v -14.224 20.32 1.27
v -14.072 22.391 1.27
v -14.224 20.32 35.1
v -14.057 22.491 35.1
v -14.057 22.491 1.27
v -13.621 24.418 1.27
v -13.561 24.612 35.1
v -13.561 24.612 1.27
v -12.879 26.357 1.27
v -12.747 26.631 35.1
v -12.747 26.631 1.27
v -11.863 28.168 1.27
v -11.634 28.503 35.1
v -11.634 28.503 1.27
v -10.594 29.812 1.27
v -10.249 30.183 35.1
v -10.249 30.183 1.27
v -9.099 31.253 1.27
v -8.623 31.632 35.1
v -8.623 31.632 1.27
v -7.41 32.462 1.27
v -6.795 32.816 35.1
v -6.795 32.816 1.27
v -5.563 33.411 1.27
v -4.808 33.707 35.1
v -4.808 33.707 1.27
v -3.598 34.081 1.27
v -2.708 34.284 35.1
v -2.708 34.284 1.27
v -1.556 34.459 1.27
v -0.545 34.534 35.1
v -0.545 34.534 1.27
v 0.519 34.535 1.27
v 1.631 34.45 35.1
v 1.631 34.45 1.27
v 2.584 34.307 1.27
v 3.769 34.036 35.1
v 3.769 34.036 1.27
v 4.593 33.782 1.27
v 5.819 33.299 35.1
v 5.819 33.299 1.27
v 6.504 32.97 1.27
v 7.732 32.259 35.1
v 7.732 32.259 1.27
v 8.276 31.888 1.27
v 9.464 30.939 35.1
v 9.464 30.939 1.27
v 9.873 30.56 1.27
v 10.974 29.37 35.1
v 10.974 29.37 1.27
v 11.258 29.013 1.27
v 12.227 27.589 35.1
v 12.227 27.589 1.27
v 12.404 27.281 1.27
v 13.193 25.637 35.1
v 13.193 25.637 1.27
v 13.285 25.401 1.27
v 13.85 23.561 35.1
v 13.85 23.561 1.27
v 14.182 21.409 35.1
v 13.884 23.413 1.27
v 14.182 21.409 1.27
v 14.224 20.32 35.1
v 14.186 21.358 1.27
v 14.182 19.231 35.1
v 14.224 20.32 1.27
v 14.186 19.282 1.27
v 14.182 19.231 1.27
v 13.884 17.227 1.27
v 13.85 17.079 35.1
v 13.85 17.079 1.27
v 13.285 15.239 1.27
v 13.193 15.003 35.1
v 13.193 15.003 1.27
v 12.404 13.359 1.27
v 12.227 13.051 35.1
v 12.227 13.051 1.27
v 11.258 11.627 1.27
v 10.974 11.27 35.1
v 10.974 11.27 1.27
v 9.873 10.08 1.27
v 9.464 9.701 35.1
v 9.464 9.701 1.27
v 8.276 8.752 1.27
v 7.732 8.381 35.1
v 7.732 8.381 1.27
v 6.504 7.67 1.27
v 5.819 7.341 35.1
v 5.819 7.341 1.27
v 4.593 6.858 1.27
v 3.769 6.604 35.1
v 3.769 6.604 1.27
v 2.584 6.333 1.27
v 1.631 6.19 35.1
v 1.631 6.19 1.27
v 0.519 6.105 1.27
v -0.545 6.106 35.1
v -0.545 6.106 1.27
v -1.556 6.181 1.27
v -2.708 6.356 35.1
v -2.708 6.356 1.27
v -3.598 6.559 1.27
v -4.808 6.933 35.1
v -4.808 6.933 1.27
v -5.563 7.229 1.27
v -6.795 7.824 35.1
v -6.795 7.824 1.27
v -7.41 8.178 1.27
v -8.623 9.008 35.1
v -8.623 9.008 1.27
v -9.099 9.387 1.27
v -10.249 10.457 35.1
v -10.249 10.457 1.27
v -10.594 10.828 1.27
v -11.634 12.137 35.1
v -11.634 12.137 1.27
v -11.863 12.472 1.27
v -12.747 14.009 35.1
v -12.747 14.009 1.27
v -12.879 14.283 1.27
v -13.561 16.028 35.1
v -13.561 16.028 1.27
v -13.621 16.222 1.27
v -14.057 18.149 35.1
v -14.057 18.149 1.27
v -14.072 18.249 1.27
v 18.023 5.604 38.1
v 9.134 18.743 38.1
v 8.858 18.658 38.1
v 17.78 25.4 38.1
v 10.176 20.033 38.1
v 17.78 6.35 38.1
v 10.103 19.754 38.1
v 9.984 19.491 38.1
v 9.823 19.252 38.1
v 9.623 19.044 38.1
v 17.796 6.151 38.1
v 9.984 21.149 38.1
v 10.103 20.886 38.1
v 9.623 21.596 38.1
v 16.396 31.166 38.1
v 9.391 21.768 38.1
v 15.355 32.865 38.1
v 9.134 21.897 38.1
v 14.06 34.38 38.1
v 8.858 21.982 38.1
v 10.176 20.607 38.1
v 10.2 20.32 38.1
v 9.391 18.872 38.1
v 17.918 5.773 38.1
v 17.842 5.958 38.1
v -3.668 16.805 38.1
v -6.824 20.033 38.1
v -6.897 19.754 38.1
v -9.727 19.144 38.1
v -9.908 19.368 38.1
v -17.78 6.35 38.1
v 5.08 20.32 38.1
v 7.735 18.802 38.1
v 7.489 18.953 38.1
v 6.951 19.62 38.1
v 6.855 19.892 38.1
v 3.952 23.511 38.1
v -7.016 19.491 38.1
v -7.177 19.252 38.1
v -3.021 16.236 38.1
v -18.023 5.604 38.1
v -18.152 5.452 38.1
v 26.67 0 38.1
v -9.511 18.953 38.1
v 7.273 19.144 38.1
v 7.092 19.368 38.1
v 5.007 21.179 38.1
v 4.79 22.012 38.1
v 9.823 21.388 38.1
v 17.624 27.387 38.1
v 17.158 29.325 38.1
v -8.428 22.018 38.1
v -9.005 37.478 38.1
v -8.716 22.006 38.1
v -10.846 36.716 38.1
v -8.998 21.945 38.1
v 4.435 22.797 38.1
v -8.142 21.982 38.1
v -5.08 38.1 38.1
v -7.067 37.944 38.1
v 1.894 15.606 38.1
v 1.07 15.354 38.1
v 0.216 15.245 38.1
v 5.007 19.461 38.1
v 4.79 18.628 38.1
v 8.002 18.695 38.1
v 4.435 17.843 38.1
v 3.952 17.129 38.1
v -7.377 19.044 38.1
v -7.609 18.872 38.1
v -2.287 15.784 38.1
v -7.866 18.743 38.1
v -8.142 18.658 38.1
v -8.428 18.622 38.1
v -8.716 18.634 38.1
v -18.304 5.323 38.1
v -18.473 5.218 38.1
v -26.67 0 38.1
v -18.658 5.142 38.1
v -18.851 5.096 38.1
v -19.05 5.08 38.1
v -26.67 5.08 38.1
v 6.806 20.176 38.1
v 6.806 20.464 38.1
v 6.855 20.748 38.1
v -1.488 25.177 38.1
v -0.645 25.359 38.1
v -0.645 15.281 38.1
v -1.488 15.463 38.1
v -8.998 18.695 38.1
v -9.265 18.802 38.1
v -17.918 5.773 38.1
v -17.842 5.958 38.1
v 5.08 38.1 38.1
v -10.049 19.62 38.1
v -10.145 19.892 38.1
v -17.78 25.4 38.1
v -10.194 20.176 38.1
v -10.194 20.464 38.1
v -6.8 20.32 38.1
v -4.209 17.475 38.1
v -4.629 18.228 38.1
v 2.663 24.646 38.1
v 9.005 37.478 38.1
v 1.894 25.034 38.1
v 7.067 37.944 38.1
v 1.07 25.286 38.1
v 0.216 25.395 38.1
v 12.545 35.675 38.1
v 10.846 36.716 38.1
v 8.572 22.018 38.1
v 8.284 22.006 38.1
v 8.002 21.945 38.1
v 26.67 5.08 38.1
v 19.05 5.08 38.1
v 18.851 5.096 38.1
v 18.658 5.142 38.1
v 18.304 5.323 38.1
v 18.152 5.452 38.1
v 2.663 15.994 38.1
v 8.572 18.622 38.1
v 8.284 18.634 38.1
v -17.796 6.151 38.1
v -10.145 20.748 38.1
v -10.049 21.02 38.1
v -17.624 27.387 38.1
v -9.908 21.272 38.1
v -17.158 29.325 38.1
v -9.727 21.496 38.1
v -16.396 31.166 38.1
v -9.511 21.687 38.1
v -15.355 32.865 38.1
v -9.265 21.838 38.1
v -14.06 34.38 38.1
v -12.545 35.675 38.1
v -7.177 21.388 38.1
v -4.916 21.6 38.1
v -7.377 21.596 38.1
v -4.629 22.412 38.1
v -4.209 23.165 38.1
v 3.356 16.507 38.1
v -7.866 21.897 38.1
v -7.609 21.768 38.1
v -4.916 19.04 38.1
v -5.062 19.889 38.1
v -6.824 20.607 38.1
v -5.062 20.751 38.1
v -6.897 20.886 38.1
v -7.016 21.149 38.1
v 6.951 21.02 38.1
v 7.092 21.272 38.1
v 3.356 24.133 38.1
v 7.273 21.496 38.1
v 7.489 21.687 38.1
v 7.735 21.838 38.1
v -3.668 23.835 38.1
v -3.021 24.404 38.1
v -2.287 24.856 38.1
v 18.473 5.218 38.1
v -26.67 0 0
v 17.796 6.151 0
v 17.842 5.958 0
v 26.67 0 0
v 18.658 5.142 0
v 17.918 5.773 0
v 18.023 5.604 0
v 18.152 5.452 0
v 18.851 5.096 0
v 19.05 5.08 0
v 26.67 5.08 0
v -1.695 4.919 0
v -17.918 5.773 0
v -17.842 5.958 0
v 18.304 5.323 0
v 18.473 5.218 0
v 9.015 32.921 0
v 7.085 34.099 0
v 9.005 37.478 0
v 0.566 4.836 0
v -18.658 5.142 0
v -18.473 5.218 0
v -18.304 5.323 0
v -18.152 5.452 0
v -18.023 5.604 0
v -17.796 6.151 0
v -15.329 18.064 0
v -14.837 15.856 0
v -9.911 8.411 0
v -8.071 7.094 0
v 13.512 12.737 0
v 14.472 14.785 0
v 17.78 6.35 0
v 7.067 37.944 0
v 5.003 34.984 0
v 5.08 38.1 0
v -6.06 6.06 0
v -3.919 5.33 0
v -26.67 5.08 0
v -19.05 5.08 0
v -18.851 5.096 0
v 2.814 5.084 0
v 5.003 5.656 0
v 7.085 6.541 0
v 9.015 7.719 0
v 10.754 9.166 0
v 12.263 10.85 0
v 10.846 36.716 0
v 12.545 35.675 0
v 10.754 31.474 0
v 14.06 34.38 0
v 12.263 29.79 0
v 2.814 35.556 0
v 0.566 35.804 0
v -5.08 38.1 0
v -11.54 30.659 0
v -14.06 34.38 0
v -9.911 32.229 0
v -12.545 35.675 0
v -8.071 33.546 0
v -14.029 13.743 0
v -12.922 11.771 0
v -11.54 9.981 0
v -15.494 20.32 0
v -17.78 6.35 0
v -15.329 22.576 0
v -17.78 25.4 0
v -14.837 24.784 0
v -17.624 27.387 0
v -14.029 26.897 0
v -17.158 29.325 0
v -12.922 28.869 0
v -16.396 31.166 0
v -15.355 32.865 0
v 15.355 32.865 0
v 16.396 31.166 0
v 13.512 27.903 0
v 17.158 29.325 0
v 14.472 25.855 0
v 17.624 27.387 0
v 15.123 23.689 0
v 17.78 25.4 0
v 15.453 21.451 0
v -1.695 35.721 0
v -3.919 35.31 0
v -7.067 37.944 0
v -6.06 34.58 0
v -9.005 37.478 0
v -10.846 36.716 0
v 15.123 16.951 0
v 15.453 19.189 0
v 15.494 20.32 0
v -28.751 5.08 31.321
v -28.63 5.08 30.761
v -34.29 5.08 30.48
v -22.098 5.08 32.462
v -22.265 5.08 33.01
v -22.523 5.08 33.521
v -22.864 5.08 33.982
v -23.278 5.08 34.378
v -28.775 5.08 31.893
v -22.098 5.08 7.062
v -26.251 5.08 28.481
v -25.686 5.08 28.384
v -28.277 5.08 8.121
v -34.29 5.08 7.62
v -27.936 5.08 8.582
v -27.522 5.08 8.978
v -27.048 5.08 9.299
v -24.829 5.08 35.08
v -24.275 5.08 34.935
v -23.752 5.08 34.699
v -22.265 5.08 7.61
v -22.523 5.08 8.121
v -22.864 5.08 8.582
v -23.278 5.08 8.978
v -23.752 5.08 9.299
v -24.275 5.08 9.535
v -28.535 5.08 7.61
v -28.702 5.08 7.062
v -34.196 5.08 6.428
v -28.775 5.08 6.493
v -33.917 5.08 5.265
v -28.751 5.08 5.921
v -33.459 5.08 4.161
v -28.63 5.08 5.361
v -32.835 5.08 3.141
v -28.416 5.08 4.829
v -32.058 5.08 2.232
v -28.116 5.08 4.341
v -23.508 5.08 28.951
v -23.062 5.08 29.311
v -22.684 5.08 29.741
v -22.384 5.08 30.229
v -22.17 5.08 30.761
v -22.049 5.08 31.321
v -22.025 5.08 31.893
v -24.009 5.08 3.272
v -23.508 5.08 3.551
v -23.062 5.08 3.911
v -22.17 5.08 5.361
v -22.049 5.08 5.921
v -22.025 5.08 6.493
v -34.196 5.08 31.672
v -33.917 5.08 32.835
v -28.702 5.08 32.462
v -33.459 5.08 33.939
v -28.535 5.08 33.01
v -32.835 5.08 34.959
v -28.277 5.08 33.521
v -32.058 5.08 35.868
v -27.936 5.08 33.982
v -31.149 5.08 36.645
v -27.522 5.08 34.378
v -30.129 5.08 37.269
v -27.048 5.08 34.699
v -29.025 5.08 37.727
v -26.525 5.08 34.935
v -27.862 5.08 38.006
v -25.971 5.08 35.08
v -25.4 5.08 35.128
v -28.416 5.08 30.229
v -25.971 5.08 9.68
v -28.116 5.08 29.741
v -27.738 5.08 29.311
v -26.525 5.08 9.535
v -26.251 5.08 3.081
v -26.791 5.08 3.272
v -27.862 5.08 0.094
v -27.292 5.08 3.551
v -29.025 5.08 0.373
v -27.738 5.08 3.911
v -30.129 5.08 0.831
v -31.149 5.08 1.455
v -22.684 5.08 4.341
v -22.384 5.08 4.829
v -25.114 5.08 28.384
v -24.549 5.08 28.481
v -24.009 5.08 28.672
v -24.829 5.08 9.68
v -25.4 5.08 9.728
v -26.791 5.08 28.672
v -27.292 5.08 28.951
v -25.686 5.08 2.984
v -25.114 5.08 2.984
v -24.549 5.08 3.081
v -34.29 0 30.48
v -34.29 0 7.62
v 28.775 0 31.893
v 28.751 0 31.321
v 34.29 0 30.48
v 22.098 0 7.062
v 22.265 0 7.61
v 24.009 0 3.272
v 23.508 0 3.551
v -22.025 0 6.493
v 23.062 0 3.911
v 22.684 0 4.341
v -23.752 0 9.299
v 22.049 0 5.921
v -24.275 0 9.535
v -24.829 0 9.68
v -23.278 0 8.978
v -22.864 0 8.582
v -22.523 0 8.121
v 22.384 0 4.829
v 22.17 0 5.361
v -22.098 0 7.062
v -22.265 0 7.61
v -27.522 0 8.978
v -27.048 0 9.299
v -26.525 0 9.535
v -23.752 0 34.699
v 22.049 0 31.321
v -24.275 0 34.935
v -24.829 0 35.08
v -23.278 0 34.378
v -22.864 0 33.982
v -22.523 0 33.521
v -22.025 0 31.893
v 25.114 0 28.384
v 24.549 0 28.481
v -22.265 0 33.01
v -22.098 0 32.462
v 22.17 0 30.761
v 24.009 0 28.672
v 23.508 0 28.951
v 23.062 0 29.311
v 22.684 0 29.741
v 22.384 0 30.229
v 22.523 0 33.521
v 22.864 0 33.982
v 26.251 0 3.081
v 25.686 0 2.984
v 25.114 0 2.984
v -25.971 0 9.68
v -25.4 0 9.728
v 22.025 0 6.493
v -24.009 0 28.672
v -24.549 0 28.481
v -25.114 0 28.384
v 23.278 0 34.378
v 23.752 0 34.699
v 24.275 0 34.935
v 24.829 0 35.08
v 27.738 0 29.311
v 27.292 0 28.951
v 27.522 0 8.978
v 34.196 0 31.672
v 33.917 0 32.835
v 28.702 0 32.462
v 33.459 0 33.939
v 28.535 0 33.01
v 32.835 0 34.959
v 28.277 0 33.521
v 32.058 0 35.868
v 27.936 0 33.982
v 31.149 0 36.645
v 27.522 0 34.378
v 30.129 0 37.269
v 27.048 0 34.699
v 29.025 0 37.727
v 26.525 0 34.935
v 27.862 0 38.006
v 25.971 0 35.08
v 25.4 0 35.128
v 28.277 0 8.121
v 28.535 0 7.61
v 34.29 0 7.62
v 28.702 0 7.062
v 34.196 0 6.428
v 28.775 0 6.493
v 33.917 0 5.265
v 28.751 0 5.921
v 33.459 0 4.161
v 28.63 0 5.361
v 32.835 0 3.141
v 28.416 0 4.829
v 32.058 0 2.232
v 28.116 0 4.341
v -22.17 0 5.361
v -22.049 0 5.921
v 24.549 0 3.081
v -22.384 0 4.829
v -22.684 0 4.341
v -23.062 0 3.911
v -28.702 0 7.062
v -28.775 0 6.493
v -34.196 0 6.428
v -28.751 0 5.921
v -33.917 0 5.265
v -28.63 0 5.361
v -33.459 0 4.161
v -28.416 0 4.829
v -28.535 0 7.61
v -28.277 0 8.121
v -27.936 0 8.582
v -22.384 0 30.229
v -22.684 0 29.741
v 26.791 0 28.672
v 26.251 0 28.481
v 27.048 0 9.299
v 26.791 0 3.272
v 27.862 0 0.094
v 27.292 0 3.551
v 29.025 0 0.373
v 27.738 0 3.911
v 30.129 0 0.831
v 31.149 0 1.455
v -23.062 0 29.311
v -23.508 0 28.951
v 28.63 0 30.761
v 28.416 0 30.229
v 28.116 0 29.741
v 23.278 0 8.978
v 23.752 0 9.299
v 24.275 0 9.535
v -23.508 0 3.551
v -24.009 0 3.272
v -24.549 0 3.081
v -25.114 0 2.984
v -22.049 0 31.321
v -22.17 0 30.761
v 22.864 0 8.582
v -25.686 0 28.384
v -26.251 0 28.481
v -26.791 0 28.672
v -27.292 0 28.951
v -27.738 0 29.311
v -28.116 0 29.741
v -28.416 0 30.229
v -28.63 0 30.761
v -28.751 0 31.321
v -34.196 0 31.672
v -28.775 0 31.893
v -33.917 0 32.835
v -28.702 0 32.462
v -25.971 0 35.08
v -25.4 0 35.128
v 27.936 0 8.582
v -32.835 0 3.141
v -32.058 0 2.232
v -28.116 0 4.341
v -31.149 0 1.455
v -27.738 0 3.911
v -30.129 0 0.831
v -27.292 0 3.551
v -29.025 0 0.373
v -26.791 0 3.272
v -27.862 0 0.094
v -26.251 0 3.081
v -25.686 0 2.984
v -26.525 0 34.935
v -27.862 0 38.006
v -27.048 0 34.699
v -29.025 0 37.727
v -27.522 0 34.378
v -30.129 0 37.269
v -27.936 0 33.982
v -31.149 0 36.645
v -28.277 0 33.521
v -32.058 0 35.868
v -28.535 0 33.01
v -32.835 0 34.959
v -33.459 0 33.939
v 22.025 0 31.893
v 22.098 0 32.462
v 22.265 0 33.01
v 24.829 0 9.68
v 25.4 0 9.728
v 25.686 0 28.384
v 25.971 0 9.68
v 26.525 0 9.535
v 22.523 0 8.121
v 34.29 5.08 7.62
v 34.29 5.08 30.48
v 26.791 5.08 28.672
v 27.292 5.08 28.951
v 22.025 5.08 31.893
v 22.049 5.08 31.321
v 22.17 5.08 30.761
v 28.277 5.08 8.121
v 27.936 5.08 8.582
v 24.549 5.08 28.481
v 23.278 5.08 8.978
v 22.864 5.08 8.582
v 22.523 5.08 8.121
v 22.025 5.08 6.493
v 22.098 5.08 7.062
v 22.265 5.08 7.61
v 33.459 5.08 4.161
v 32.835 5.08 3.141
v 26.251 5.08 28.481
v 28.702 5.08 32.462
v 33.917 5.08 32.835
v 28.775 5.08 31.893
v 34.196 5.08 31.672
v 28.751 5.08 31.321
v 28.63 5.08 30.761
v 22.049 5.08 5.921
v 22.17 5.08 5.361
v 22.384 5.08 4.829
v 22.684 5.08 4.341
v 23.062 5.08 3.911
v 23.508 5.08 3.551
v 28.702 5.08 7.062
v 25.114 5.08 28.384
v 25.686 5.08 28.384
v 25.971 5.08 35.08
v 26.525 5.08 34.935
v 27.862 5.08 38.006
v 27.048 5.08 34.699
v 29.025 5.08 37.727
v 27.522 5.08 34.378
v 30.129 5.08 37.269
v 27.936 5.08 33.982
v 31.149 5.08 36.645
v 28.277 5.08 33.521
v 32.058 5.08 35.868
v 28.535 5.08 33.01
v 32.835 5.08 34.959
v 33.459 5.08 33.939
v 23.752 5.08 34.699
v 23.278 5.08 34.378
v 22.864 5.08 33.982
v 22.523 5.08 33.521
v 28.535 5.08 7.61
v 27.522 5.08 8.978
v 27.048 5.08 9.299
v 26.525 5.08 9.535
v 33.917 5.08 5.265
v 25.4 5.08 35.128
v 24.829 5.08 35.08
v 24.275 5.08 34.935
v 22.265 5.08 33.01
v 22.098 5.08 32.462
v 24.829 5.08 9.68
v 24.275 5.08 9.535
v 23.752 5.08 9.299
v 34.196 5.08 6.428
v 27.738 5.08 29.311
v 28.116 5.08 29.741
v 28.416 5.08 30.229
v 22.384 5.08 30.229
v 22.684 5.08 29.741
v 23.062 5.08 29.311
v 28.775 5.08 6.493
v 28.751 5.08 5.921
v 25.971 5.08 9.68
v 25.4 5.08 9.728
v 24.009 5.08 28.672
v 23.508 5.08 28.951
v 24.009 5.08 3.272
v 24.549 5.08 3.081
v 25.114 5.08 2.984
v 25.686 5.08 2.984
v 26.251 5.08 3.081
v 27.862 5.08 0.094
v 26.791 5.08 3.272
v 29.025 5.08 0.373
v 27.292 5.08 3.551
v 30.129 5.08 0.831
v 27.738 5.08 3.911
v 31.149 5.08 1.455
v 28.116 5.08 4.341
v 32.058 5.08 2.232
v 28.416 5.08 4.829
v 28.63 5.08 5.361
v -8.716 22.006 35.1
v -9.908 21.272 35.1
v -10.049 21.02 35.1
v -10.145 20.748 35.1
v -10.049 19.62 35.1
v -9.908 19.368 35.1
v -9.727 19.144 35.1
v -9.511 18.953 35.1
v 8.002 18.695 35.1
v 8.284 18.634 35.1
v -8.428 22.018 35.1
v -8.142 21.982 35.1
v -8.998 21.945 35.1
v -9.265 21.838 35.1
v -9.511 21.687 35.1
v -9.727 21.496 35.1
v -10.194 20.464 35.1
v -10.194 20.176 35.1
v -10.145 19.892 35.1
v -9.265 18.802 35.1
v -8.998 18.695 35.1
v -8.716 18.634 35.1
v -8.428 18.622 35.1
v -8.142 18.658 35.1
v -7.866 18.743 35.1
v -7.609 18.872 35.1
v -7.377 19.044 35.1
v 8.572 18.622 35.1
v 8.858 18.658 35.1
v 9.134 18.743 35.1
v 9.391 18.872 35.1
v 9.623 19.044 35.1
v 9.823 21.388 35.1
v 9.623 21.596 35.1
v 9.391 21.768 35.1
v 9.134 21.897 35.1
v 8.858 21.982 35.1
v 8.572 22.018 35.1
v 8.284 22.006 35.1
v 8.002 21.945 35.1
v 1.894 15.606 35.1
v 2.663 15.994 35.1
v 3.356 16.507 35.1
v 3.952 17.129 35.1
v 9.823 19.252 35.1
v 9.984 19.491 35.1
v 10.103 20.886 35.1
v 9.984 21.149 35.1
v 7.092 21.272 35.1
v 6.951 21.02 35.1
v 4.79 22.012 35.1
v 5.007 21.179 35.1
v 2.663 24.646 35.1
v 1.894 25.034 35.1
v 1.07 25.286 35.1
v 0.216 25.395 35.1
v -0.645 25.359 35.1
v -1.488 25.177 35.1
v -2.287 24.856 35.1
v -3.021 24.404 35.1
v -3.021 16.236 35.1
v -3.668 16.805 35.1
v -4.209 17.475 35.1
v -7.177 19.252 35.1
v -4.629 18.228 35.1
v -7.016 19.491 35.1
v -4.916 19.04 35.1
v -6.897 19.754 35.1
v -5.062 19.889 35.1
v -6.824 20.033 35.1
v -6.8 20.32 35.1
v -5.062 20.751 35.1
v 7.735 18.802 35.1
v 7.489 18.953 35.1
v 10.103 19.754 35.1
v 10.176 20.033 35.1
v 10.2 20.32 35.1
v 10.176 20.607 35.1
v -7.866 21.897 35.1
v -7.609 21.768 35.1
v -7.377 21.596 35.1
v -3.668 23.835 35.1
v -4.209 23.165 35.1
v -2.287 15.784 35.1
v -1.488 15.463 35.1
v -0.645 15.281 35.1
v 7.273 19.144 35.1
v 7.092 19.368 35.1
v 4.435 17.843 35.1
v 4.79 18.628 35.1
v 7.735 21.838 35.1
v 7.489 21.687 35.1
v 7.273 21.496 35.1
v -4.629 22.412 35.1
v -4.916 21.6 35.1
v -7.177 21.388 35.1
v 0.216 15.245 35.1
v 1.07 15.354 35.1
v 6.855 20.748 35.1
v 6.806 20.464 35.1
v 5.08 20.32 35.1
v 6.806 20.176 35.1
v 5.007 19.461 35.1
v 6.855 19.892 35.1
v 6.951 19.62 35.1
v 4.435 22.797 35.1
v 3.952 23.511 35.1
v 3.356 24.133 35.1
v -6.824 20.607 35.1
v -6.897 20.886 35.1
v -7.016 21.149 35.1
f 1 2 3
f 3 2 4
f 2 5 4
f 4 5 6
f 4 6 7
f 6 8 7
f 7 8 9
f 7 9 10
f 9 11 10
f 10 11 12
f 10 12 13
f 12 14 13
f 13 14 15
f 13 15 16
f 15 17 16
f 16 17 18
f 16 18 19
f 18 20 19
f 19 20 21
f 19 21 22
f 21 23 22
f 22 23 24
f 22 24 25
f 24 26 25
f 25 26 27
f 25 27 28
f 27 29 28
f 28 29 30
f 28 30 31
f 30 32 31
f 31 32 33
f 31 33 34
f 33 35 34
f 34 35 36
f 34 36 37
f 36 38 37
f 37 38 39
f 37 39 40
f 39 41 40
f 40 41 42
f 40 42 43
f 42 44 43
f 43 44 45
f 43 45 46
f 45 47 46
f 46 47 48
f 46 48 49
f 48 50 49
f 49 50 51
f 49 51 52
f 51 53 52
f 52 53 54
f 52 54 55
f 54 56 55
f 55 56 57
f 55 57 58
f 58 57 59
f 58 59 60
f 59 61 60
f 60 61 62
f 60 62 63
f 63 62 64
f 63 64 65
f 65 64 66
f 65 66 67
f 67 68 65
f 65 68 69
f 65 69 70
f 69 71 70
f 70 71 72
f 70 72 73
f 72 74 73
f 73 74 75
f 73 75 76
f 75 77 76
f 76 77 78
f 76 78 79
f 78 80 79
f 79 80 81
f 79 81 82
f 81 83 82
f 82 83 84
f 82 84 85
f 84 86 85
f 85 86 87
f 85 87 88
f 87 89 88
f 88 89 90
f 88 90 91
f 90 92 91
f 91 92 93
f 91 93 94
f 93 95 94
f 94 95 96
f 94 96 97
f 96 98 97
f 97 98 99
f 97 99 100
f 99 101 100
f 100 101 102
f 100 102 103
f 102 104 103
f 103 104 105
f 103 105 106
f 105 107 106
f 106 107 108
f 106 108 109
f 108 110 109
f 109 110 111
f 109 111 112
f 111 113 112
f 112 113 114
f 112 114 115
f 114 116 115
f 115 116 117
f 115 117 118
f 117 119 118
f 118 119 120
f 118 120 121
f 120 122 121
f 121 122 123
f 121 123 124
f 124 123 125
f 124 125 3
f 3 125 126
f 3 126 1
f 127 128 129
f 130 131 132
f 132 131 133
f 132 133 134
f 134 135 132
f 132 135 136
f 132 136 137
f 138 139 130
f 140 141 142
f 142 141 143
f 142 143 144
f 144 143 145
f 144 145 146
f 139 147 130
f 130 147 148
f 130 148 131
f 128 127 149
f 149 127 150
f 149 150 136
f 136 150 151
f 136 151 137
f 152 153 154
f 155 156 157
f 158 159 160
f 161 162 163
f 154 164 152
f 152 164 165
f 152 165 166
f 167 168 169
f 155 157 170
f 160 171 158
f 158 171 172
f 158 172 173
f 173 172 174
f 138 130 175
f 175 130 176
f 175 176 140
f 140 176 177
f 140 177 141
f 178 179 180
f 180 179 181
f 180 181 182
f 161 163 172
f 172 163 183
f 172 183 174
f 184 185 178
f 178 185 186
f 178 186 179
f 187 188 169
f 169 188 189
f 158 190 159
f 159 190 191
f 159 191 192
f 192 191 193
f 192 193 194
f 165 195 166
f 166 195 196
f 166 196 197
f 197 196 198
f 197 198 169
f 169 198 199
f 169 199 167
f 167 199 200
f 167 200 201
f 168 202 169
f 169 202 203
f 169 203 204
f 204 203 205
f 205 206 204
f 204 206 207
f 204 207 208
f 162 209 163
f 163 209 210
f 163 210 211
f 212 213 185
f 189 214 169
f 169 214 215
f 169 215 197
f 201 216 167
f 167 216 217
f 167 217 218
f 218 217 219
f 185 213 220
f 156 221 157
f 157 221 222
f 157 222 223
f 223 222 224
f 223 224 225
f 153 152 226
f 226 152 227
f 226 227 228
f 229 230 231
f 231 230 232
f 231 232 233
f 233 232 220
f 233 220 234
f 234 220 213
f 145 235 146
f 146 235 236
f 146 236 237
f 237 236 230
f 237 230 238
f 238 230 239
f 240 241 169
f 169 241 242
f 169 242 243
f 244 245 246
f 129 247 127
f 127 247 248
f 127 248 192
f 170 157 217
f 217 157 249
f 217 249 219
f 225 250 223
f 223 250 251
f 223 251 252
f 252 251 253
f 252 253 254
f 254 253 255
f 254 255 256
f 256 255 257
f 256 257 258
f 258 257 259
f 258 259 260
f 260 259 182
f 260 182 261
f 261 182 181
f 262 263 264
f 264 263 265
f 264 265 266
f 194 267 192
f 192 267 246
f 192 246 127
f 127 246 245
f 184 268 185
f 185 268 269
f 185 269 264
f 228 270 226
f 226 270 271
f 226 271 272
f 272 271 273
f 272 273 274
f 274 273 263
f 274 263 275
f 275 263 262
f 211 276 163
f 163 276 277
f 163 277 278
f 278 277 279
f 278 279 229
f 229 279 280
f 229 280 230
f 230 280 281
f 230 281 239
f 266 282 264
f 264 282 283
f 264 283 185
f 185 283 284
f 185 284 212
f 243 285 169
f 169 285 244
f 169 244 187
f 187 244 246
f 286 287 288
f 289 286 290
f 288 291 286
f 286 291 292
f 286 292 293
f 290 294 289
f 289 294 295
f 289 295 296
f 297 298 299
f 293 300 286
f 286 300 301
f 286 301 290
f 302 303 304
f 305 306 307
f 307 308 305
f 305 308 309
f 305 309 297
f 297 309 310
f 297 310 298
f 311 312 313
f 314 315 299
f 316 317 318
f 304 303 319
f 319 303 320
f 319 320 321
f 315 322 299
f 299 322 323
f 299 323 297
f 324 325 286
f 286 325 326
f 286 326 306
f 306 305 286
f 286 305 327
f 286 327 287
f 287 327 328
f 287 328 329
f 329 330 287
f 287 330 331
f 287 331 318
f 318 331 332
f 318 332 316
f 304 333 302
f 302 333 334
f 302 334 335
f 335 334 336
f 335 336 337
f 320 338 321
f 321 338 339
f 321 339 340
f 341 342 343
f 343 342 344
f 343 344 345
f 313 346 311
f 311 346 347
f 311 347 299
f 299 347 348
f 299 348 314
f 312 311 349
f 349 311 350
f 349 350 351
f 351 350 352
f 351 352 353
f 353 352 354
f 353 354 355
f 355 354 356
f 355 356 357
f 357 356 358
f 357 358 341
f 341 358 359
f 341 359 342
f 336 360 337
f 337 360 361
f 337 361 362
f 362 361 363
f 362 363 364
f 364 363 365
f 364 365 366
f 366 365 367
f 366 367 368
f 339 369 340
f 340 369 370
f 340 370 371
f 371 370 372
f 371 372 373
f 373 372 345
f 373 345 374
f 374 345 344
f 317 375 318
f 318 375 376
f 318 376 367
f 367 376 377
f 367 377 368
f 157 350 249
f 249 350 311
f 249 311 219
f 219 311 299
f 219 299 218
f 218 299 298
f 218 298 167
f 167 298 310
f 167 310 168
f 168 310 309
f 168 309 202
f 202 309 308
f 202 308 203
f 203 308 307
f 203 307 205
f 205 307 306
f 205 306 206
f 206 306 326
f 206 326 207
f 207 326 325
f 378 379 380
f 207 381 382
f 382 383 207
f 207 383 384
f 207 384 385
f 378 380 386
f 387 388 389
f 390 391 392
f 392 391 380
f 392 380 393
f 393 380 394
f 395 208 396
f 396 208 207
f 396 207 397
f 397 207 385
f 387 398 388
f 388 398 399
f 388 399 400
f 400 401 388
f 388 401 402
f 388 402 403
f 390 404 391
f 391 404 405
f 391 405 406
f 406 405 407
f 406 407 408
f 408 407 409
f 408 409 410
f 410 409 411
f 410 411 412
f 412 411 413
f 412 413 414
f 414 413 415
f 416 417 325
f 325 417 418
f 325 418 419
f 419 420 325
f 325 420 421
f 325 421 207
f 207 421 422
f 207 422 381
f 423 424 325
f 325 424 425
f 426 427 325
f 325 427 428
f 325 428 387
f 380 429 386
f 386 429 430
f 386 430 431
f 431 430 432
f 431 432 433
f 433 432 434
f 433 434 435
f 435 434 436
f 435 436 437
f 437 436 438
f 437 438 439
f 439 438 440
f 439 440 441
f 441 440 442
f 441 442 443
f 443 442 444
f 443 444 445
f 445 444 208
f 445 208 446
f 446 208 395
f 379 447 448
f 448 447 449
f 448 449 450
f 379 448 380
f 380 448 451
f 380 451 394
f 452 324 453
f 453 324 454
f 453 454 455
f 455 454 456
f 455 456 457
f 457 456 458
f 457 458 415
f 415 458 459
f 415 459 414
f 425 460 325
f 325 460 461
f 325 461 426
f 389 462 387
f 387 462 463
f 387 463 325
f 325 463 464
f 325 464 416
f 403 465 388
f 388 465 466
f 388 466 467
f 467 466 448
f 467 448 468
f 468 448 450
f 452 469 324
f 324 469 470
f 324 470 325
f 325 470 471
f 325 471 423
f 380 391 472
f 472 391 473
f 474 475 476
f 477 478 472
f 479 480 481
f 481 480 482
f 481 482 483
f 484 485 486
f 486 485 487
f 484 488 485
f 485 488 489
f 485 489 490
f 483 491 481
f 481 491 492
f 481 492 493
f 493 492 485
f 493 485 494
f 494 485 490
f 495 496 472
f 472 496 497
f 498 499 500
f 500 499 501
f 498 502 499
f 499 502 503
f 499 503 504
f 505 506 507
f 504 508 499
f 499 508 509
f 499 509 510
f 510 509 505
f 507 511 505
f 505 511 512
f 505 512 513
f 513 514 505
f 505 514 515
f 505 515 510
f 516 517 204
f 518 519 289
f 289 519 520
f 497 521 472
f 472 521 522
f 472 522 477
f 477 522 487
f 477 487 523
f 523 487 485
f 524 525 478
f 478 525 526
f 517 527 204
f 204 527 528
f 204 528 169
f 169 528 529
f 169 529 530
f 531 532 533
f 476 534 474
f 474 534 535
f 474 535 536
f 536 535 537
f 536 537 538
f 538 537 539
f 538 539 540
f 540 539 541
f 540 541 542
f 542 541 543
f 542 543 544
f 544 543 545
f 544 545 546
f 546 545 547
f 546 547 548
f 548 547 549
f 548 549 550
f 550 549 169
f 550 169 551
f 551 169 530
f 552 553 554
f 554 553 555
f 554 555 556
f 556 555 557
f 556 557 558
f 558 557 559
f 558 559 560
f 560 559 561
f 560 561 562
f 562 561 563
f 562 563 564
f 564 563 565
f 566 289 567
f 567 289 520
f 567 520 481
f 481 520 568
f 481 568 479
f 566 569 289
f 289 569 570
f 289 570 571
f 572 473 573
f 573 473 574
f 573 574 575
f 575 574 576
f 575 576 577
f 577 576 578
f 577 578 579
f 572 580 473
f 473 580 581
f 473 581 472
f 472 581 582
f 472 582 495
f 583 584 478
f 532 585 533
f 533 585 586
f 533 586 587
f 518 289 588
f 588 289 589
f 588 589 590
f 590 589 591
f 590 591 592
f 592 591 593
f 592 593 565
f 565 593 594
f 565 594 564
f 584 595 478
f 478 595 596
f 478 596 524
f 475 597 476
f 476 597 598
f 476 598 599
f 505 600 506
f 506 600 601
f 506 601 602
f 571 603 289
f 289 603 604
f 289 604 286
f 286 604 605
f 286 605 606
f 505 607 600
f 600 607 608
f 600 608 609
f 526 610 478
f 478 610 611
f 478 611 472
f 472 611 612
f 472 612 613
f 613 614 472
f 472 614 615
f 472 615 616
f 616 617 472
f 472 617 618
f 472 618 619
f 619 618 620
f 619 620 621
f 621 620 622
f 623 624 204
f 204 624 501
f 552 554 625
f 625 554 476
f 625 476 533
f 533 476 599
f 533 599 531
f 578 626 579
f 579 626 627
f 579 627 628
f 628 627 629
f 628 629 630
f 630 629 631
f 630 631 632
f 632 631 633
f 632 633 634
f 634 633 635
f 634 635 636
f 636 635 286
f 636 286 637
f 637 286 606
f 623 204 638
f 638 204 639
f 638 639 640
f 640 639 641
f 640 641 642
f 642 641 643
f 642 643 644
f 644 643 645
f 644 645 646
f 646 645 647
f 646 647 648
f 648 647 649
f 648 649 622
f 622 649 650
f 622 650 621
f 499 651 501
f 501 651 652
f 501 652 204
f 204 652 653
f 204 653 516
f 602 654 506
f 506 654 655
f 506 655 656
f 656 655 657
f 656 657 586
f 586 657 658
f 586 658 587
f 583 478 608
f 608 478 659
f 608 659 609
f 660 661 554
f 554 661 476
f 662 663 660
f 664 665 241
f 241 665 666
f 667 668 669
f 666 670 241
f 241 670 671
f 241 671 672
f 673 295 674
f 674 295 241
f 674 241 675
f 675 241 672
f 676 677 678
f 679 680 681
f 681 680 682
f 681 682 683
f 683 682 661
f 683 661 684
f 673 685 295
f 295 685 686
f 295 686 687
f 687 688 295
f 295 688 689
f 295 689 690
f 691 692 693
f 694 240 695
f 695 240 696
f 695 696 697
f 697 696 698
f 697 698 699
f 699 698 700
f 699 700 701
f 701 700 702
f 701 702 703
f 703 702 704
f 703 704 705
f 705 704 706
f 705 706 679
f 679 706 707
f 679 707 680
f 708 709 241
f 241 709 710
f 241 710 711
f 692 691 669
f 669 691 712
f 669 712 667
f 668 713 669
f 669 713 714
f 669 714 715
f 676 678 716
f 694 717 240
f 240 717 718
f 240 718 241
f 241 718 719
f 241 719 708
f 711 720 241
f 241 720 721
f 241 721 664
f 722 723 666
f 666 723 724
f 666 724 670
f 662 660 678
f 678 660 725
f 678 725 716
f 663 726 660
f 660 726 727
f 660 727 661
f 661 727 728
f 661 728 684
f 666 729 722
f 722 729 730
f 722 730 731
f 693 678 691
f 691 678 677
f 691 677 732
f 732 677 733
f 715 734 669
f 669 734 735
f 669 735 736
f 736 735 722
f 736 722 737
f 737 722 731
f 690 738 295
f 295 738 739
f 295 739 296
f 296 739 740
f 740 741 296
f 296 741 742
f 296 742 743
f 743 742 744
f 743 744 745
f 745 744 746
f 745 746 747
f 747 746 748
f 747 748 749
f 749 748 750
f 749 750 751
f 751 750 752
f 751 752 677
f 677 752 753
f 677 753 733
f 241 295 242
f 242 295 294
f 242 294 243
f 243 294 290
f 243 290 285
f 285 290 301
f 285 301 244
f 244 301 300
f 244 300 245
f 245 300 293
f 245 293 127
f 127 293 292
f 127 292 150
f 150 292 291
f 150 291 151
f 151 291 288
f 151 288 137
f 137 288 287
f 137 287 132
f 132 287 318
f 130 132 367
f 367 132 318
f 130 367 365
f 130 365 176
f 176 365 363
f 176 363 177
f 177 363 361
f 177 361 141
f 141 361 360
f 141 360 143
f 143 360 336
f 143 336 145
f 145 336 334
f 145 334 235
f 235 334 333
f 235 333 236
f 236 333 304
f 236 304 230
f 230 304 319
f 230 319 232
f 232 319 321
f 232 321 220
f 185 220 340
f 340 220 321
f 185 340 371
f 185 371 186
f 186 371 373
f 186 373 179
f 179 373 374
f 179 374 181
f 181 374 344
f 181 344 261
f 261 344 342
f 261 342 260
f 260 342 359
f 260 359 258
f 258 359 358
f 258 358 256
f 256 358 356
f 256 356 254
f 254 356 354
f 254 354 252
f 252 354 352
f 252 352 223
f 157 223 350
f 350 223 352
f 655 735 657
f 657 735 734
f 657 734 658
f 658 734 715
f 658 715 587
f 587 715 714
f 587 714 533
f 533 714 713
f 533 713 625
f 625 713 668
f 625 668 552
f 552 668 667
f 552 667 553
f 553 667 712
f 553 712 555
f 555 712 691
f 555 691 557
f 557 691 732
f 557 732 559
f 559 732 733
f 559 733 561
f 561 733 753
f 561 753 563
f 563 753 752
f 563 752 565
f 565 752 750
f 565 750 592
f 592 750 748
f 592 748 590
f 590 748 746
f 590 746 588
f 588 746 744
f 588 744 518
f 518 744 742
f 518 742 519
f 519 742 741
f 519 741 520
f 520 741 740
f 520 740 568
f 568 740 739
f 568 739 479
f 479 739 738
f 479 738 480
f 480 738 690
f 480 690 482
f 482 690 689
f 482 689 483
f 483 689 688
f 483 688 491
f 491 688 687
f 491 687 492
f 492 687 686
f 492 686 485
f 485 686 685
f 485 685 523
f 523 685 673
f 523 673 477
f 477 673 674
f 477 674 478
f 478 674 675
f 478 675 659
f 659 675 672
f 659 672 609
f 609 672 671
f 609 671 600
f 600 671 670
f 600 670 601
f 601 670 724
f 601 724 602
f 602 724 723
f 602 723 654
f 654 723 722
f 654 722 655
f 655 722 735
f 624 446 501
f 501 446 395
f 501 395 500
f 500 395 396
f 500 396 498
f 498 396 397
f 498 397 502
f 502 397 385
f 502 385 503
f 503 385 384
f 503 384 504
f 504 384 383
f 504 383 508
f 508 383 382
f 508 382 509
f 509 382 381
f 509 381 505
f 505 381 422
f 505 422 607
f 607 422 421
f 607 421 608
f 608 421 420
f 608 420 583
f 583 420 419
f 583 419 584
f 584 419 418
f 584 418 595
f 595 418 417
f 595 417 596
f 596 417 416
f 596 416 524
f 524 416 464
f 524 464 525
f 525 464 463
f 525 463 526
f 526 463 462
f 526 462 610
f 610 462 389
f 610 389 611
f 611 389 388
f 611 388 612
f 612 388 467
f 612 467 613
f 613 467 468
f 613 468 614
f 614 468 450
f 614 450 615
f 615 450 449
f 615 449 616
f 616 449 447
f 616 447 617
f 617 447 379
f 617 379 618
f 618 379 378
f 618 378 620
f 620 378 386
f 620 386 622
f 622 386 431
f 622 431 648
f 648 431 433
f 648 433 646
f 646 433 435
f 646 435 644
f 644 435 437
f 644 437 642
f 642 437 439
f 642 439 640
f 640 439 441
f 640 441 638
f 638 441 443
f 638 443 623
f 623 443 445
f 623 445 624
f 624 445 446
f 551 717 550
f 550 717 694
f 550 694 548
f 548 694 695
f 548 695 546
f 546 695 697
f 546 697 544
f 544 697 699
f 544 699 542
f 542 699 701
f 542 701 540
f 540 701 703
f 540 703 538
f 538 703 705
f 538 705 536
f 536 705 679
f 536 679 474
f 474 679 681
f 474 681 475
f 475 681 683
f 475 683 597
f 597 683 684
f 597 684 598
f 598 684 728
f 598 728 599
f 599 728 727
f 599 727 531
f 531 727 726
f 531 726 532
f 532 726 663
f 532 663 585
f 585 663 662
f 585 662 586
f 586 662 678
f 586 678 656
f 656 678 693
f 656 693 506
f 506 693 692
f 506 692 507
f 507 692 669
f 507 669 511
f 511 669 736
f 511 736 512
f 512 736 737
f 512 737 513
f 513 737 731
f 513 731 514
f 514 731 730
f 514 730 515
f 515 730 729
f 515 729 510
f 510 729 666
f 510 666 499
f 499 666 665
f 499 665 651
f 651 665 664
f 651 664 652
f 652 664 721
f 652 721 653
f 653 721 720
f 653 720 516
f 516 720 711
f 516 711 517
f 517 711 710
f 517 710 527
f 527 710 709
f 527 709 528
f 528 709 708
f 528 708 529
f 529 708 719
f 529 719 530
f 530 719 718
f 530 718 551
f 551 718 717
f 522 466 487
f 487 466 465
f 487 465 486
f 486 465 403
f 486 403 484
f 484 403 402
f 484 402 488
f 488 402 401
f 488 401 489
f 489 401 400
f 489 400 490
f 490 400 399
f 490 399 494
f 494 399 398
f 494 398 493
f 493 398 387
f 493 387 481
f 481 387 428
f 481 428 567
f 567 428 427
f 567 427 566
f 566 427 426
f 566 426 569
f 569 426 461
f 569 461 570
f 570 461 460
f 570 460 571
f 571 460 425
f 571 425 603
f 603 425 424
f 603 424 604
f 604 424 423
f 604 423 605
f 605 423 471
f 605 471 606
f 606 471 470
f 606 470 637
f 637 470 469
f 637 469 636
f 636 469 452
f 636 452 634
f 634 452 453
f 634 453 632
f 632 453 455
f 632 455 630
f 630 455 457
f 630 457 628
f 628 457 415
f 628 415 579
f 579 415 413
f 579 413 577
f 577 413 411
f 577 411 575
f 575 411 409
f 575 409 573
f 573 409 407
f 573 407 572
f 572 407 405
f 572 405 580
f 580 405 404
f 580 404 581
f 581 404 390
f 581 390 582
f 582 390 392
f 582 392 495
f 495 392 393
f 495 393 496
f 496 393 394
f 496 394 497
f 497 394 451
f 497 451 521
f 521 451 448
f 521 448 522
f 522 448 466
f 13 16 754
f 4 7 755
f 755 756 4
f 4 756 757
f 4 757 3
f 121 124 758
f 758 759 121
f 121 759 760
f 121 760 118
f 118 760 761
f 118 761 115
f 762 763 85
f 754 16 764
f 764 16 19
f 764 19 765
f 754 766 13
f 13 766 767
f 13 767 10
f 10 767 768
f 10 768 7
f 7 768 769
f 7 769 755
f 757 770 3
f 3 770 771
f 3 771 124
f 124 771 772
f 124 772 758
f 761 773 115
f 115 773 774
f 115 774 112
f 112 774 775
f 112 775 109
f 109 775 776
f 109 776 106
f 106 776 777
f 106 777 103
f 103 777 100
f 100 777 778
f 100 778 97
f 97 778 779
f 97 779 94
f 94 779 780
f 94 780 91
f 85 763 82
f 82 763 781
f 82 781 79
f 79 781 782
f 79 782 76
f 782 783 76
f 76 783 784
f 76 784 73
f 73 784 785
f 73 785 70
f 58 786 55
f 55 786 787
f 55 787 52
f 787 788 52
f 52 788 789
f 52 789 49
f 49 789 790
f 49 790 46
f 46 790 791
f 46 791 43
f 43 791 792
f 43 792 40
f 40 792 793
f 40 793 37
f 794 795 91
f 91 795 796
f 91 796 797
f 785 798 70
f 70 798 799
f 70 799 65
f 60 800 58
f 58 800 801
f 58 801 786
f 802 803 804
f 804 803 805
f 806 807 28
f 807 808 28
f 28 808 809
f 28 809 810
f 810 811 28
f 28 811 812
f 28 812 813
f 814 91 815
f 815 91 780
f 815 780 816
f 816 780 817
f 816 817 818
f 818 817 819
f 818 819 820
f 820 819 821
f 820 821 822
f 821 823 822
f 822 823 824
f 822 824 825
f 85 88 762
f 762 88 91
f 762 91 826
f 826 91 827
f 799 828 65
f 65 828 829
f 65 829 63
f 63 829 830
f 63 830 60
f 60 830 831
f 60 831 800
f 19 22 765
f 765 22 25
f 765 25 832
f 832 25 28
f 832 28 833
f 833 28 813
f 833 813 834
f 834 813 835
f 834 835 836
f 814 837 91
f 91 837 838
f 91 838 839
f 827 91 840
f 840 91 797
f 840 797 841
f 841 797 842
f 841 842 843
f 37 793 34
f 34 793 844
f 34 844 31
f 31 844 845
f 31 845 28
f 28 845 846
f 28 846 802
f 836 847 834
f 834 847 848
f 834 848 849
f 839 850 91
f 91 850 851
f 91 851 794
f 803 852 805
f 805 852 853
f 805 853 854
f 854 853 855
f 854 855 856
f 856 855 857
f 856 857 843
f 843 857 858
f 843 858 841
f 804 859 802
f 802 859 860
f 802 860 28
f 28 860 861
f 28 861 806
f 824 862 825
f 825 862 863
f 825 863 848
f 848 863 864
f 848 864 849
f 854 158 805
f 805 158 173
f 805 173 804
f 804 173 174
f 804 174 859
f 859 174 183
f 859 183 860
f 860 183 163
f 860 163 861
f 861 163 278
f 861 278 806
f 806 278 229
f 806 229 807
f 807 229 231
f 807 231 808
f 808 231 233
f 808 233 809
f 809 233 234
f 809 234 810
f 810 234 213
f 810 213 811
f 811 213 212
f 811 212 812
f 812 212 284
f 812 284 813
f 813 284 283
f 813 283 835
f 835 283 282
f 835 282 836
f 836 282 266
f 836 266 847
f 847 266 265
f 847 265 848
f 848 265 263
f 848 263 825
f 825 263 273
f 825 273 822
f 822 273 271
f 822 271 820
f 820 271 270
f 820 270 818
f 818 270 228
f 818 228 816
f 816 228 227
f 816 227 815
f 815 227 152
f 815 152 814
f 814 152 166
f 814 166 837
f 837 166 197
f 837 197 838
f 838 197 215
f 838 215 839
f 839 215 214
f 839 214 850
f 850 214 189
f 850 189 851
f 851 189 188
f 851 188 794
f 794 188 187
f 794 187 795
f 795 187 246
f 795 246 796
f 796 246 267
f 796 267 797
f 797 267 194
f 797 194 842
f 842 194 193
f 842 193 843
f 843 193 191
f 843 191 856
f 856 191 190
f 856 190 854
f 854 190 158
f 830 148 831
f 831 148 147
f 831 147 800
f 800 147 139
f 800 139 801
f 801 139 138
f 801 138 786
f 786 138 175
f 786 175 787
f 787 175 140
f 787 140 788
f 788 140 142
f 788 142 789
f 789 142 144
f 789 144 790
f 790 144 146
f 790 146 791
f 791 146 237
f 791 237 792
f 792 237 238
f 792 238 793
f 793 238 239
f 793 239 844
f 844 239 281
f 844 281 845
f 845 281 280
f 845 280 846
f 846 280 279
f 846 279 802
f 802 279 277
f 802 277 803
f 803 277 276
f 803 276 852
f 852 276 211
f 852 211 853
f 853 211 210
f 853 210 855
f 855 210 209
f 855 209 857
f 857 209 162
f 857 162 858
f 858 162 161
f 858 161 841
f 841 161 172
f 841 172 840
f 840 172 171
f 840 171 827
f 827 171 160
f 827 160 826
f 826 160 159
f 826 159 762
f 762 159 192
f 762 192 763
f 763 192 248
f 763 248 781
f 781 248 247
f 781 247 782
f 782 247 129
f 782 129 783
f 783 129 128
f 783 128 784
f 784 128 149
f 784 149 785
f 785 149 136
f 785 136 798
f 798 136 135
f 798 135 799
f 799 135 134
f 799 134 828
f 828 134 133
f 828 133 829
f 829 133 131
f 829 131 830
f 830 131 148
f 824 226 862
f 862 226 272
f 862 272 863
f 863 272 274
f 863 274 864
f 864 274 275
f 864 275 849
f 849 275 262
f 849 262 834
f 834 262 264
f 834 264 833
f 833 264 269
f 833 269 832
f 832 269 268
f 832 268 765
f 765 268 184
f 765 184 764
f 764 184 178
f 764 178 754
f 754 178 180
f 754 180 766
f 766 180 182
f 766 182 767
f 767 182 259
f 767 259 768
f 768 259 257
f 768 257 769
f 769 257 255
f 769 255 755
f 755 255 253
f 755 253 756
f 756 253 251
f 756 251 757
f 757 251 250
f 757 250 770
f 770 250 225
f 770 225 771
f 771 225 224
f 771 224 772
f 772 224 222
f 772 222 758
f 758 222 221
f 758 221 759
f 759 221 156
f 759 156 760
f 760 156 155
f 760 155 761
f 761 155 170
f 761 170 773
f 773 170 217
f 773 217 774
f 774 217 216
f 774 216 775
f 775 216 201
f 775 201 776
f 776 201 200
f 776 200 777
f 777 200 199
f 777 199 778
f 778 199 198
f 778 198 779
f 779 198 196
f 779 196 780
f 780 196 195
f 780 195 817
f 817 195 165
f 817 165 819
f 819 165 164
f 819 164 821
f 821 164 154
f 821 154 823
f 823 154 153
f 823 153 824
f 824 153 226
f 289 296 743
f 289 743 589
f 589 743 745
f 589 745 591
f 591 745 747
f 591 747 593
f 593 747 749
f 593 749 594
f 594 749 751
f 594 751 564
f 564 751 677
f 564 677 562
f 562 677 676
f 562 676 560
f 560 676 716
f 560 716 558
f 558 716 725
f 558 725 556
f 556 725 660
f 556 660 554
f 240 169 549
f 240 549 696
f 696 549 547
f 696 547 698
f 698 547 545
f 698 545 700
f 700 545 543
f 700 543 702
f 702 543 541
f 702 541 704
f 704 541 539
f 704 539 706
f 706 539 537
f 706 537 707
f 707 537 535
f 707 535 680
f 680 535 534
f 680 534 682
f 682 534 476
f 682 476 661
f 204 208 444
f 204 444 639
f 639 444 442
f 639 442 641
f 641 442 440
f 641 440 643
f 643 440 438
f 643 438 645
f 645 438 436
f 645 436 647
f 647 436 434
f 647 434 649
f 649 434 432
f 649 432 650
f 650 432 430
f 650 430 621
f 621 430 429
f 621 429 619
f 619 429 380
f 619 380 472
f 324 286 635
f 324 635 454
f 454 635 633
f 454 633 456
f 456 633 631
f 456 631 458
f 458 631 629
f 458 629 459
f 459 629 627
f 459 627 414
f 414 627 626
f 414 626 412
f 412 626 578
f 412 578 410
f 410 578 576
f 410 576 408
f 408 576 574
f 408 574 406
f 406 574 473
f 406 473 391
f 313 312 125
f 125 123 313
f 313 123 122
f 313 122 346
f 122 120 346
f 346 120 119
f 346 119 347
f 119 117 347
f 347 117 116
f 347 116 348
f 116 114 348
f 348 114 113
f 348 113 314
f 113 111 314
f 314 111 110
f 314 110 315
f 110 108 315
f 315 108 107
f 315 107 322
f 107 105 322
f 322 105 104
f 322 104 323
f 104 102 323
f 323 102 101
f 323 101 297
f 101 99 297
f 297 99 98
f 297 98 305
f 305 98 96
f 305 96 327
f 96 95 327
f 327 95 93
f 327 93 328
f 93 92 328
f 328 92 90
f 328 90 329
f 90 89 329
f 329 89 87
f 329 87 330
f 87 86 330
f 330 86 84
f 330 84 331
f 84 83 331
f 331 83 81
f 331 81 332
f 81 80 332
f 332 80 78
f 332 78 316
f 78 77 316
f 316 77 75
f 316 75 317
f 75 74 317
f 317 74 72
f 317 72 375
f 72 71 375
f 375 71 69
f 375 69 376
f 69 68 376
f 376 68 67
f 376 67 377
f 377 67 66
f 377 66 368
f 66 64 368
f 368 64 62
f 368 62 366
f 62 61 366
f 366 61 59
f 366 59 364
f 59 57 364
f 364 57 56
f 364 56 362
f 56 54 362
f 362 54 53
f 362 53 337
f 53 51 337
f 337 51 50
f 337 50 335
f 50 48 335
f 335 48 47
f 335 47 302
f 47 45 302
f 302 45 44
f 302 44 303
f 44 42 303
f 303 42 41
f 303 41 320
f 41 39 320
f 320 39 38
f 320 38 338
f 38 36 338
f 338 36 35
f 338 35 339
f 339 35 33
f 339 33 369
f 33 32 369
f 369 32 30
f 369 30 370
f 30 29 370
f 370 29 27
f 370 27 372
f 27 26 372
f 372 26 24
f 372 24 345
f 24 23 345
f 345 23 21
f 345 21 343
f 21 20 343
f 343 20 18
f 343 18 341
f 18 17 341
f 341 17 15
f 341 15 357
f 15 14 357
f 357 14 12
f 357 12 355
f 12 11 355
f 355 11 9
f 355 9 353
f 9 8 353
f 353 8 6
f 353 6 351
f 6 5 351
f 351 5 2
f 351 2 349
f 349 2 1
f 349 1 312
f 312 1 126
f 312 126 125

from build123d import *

# Parameters (mm, degrees)
SKETCH1_R               = 14.224
BOSS_EXTRUDE1_DEPTH     = 38.1
F_1_4_CLEARANCE_HOLE1_D = 6.7564
SKETCH4_R               = 16.637181665
SKETCH4_R_2             = 5.08
SKETCH4_R_3             = 1.7
BOSS_EXTRUDE2_DEPTH     = 3
FILLET1_R               = 7.62
CHAMFER1_SIZE           = 1.27


with BuildPart() as part:
    # Sketch1 → Boss-Extrude1 (new body)
    with BuildSketch(Plane.XY):
        with BuildLine():
            Line((-34.29, 0), (34.29, 0))
            Line((34.29, 0), (34.29, 5.08))
            Line((34.29, 5.08), (19.05, 5.08))
            ThreePointArc((19.05, 5.08), (18.151974388, 5.451974388), (17.78, 6.35))
            Line((17.78, 6.35), (17.78, 20.32))
            Line((17.78, 20.32), (17.78, 25.4))
            ThreePointArc((17.78, 25.4), (14.060256121, 34.380256121), (5.08, 38.1))
            Line((5.08, 38.1), (-5.08, 38.1))
            ThreePointArc((-5.08, 38.1), (-14.060256121, 34.380256121), (-17.78, 25.4))
            Line((-17.78, 25.4), (-17.78, 20.32))
            Line((-17.78, 20.32), (-17.78, 6.35))
            ThreePointArc((-17.78, 6.35), (-18.151974388, 5.451974388), (-19.05, 5.08))
            Line((-19.05, 5.08), (-34.29, 5.08))
            Line((-34.29, 5.08), (-34.29, 0))
        make_face()
        with Locations(Location((0, 20.32, 0), (0, 0, 180))):
            Circle(SKETCH1_R, mode=Mode.SUBTRACT)
    extrude(amount=BOSS_EXTRUDE1_DEPTH)

    # 1/4 Clearance Hole1 (through all)
    with Locations(Plane(origin=(0, 5.08, 0), x_dir=(1, 0, 0), z_dir=(0, 1, 0))):
        with Locations((-25.4, -6.35), (25.4, -31.75), (-25.4, -31.75), (25.4, -6.35)):
            Hole(F_1_4_CLEARANCE_HOLE1_D / 2)

    # Sketch4 → Boss-Extrude2 (add)
    with BuildSketch(Plane.XY.offset(38.1)):
        with Locations((0, 20.32)):
            Circle(SKETCH4_R)
        with Locations((0, 20.32)):
            Circle(SKETCH4_R_2, mode=Mode.SUBTRACT)
        with Locations((8.5, 20.32)):
            Circle(SKETCH4_R_3, mode=Mode.SUBTRACT)
        with Locations((-8.5, 20.32)):
            Circle(SKETCH4_R_3, mode=Mode.SUBTRACT)
    extrude(amount=-BOSS_EXTRUDE2_DEPTH)

    # Fillet1
    fillet1_edges = [part.edges().sort_by_distance(p)[0] for p in [
        (-34.29, 2.54, 0),
        (34.29, 2.54, 0),
        (34.29, 2.54, 38.1),
        (-34.29, 2.54, 38.1),
    ]]
    fillet(fillet1_edges, radius=FILLET1_R)

    # Chamfer1
    chamfer1_edges = [part.edges().sort_by_distance(p)[0] for p in [
        (14.224, 20.32, 0),
    ]]
    chamfer(chamfer1_edges, length=CHAMFER1_SIZE)


solid = part.part
